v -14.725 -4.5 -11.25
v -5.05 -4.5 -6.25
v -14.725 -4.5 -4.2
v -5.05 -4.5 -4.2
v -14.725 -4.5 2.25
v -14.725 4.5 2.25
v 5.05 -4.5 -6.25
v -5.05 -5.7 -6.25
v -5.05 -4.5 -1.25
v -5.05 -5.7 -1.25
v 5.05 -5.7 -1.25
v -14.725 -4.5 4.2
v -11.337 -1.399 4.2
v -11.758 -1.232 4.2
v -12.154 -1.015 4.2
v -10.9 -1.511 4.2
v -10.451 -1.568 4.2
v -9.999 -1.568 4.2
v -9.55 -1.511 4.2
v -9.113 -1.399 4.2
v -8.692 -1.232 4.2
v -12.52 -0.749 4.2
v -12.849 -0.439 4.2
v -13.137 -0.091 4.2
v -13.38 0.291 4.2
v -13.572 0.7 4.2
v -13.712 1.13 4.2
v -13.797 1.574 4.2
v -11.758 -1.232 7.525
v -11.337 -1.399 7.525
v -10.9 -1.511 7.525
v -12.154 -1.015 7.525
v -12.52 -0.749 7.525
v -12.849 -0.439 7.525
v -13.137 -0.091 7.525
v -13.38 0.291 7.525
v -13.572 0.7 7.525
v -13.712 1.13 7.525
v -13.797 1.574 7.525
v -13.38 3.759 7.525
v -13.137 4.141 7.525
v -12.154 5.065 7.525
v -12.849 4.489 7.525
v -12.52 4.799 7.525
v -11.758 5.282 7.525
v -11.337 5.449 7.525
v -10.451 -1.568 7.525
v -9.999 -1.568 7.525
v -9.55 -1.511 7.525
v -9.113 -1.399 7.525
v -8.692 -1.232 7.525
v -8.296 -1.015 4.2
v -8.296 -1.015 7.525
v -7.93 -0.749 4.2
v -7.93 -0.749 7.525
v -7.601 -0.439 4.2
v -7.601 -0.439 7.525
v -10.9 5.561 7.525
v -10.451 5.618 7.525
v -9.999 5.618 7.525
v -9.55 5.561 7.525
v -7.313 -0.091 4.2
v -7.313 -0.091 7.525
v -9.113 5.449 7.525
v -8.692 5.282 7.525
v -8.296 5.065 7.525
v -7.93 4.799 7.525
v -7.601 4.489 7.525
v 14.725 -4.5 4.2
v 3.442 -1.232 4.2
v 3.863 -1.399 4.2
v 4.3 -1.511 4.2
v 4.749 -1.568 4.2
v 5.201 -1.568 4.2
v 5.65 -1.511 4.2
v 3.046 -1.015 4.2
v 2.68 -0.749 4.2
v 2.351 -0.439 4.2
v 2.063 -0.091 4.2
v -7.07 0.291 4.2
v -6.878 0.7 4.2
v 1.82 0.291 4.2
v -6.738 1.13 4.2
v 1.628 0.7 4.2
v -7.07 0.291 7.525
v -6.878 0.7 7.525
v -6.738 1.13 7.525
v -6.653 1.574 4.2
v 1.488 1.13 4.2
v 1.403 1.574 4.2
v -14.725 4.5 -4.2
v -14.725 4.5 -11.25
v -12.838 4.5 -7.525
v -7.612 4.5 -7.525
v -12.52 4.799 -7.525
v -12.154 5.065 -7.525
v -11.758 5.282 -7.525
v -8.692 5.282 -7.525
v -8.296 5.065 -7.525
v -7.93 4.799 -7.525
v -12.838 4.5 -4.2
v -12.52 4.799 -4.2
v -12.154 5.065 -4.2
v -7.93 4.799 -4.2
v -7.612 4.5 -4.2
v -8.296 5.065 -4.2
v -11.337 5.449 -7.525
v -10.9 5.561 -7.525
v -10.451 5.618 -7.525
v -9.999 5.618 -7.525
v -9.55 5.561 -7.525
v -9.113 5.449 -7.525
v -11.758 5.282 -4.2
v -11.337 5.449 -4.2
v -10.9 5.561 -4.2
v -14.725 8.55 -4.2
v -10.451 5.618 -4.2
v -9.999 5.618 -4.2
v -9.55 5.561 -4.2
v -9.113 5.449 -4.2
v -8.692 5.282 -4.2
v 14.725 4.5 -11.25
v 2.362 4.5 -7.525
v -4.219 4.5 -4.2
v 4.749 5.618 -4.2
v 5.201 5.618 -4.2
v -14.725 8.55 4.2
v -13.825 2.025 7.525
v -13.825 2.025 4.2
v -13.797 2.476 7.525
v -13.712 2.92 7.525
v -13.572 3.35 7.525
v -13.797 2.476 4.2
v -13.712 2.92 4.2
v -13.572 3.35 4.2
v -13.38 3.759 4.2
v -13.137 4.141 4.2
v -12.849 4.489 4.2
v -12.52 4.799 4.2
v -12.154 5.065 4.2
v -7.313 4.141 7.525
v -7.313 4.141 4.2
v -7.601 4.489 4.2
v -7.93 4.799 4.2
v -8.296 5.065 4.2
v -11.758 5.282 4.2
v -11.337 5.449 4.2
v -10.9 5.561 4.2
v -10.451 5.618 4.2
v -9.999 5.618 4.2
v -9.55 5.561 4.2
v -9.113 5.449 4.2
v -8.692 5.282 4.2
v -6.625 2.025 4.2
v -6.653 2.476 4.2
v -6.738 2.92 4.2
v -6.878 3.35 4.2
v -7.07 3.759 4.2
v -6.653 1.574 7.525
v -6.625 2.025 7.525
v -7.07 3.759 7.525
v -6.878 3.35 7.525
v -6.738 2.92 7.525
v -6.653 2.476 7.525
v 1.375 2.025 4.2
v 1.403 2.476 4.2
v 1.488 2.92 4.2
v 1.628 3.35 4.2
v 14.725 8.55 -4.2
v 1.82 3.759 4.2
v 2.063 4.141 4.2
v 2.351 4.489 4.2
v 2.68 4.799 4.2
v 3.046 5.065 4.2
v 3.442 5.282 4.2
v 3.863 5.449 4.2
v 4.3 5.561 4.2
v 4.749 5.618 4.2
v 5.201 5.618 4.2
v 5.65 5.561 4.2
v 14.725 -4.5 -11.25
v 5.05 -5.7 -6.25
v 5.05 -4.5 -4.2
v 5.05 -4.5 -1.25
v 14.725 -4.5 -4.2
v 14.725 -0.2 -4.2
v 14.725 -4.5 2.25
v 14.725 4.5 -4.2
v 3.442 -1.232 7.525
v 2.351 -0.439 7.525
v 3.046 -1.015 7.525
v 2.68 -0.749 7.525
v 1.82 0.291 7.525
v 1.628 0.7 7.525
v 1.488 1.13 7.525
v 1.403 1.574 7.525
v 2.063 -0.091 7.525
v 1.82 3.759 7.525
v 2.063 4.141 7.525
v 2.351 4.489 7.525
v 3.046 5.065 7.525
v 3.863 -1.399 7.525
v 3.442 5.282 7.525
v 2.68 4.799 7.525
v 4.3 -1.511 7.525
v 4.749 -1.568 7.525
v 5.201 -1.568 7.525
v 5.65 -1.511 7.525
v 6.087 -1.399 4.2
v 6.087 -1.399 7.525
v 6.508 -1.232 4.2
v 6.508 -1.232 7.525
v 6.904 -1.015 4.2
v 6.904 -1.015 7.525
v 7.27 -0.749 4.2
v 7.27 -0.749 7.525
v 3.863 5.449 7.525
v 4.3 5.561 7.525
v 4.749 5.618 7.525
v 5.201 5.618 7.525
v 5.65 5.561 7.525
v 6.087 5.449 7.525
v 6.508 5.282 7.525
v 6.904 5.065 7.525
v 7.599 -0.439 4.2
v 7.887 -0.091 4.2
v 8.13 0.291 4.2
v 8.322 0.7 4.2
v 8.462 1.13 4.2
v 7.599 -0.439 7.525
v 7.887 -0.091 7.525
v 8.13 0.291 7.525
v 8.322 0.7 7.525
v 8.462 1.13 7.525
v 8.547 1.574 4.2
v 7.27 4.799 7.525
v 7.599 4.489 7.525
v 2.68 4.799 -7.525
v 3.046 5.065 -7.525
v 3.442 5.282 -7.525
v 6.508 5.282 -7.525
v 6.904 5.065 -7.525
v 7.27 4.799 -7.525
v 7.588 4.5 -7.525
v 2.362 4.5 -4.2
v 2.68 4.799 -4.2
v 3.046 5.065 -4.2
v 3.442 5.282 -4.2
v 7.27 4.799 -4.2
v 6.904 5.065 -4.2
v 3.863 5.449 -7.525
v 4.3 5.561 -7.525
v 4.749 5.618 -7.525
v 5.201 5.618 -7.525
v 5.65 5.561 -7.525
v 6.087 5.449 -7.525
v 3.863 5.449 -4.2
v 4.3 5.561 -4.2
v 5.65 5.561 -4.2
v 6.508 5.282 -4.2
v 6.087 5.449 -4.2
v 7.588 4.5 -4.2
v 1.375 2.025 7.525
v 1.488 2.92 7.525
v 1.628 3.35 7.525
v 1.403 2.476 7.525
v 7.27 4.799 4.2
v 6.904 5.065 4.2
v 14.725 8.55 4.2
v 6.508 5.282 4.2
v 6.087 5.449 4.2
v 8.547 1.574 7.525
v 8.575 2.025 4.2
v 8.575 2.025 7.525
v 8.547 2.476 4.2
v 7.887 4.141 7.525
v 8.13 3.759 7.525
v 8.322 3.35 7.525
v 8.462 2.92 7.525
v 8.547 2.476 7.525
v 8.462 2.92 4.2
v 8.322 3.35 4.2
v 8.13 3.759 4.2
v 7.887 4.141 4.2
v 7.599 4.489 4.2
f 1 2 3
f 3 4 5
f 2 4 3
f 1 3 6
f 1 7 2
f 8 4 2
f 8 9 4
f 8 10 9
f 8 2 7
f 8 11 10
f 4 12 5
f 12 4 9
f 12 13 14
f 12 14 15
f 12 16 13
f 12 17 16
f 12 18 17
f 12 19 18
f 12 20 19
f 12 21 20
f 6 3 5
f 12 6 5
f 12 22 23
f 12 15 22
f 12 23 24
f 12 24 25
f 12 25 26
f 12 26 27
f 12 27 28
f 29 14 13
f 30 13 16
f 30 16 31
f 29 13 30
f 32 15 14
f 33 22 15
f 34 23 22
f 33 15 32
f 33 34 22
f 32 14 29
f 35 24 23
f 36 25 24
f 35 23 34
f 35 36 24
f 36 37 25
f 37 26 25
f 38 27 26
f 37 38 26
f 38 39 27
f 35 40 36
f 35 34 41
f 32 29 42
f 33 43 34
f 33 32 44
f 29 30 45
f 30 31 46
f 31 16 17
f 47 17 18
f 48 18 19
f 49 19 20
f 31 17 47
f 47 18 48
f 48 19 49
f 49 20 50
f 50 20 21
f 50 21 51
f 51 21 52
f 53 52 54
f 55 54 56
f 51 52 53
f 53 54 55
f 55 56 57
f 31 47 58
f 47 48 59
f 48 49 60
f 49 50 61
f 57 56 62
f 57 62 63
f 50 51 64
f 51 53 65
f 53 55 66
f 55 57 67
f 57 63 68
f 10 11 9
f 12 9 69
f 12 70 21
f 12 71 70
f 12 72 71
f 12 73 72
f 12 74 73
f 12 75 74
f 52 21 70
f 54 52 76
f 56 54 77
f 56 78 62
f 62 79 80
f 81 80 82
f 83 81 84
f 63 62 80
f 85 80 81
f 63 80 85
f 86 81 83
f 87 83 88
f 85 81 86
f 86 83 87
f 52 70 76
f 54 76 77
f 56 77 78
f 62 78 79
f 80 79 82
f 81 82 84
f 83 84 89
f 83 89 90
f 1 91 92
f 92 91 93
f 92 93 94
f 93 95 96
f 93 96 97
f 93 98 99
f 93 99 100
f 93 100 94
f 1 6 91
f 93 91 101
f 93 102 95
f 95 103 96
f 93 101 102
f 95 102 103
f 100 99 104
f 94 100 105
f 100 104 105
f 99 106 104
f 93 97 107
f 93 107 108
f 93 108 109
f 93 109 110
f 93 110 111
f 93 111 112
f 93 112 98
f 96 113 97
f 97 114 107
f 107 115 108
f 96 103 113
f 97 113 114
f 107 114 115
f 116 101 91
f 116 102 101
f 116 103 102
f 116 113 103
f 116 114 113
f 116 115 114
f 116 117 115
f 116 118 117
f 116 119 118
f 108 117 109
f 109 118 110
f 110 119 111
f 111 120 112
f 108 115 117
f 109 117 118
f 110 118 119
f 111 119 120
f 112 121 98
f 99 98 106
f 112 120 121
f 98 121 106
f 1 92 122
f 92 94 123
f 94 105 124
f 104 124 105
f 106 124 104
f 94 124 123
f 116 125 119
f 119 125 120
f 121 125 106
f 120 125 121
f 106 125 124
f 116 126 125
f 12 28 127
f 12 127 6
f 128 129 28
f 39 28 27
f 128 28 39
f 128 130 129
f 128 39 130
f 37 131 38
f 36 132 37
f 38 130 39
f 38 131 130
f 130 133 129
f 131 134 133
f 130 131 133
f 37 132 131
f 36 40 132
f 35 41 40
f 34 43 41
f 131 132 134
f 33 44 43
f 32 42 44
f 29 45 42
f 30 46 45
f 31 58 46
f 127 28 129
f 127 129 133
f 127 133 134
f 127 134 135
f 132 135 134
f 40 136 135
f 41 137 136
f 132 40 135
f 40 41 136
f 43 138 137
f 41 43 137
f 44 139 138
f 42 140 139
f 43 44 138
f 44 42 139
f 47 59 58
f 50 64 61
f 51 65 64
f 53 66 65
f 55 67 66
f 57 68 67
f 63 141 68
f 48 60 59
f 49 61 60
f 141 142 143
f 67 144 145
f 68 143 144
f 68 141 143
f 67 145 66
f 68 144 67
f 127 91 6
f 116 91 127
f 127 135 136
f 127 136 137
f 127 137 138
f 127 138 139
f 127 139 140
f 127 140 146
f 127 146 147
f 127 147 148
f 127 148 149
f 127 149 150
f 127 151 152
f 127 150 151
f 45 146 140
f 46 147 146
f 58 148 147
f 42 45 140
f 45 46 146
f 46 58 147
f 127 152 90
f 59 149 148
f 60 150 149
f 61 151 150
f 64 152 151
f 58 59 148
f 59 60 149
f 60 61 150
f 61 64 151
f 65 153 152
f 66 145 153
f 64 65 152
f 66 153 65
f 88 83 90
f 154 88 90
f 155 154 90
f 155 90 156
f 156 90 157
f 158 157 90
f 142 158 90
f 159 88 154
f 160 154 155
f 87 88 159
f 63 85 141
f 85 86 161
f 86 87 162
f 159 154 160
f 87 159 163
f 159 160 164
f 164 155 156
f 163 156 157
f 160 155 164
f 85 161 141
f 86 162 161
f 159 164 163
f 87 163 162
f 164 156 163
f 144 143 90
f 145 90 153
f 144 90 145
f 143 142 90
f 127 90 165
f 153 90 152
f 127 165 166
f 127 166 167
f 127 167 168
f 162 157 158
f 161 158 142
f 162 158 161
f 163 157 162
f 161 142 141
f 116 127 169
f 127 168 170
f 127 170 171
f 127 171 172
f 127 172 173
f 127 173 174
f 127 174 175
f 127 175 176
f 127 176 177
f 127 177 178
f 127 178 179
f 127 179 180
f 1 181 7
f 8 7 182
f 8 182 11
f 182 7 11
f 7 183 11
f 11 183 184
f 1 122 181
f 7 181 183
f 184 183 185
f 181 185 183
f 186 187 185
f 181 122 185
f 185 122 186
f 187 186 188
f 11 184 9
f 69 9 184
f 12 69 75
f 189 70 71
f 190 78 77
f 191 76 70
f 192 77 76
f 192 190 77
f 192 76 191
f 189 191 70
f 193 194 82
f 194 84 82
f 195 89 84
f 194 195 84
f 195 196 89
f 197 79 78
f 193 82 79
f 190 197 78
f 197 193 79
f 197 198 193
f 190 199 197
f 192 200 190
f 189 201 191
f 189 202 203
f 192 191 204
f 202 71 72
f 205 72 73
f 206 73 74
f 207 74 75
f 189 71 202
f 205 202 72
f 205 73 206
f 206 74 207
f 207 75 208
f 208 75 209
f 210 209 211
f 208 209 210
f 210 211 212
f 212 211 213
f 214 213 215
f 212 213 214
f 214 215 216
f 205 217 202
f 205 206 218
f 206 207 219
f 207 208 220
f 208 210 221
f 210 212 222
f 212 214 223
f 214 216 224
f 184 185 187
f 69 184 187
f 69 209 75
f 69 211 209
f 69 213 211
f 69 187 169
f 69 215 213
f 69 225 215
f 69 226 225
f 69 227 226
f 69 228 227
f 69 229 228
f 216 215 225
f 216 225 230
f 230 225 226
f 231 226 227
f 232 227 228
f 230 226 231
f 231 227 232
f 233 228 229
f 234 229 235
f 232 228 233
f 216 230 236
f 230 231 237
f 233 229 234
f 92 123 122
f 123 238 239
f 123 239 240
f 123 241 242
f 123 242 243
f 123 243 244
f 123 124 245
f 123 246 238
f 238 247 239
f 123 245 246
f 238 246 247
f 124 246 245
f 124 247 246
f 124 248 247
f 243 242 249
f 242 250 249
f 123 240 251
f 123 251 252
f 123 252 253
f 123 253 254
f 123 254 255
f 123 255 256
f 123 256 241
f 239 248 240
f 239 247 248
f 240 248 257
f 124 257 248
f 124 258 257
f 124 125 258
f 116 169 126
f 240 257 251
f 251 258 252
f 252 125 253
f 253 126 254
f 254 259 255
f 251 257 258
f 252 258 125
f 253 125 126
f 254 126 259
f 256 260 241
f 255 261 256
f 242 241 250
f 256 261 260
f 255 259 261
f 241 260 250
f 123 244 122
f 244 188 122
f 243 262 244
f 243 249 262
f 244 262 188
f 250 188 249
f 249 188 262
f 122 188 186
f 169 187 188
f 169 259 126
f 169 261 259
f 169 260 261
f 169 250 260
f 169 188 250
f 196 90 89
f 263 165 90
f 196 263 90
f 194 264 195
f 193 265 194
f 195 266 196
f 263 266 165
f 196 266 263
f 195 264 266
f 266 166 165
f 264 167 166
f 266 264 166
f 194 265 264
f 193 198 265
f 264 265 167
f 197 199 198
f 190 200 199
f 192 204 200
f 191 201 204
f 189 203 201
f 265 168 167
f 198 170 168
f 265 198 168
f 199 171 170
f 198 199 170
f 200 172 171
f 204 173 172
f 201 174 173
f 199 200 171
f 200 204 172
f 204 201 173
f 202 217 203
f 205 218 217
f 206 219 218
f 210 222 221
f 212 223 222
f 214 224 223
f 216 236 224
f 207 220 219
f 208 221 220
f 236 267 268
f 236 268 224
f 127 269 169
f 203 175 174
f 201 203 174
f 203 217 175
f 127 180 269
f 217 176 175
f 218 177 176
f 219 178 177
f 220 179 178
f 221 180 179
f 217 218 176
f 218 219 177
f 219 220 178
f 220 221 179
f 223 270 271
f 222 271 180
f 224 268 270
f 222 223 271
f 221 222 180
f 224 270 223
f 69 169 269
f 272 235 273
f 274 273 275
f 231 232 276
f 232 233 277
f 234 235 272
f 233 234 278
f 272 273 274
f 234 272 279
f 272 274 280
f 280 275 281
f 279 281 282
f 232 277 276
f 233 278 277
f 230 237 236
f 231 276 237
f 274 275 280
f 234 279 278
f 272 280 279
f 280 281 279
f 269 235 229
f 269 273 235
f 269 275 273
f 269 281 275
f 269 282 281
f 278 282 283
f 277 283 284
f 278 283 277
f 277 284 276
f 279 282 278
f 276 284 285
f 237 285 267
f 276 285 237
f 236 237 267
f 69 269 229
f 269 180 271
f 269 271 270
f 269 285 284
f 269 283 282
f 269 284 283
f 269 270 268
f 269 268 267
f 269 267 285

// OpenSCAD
// Sharp GP2Y0D413K0F Distance Sensor
// Units: mm
// Origin: Center of the main body

$fn = 50;

module gp2y0d413k0f() {
    // Main Body Dimensions
    width = 29.45;
    height = 13.5;
    depth = 13.05; // Lens case section depth
    
    // Lens positions from center (horizontal)
    // Left: 4.5 from left edge (14.725 - 4.5 = 10.225 from center)
    // Right: 19.7 from left edge (19.7 - 14.725 = 4.975 from center)
    
    union() {
        // Main rectangular housing
        translate([0, 0, -height/2 + (height - 9.0)/2]) // Adjusted for overall shape
        cube([width, 9.0, height], center=true);
        
        // Lens section (protruding)
        translate([0, (depth - 9.0)/2, 0])
        cube([width, depth, 8.4], center=true);
        
        // Lenses
        lens_d = 7.2;
        translate([-10.225, (depth - 9.0)/2, 0])
            cylinder(d=lens_d, h=depth+2, center=true);
        translate([4.975, (depth - 9.0)/2, 0])
            cylinder(d=lens_d, h=depth+2, center=true);
            
        // Connector / PWB section
        // 10.1 wide, 1.2 thick PWB
        translate([0, -9.0/2 - 1.2/2, -height/2 + 3])
        cube([10.1, 1.2, 5], center=true);
    }
}

// Render the model
color("gray") gp2y0d413k0f();

// Reference grid for visual confirmation
%cube([29.45, 18.9, 13.5], center=true);
